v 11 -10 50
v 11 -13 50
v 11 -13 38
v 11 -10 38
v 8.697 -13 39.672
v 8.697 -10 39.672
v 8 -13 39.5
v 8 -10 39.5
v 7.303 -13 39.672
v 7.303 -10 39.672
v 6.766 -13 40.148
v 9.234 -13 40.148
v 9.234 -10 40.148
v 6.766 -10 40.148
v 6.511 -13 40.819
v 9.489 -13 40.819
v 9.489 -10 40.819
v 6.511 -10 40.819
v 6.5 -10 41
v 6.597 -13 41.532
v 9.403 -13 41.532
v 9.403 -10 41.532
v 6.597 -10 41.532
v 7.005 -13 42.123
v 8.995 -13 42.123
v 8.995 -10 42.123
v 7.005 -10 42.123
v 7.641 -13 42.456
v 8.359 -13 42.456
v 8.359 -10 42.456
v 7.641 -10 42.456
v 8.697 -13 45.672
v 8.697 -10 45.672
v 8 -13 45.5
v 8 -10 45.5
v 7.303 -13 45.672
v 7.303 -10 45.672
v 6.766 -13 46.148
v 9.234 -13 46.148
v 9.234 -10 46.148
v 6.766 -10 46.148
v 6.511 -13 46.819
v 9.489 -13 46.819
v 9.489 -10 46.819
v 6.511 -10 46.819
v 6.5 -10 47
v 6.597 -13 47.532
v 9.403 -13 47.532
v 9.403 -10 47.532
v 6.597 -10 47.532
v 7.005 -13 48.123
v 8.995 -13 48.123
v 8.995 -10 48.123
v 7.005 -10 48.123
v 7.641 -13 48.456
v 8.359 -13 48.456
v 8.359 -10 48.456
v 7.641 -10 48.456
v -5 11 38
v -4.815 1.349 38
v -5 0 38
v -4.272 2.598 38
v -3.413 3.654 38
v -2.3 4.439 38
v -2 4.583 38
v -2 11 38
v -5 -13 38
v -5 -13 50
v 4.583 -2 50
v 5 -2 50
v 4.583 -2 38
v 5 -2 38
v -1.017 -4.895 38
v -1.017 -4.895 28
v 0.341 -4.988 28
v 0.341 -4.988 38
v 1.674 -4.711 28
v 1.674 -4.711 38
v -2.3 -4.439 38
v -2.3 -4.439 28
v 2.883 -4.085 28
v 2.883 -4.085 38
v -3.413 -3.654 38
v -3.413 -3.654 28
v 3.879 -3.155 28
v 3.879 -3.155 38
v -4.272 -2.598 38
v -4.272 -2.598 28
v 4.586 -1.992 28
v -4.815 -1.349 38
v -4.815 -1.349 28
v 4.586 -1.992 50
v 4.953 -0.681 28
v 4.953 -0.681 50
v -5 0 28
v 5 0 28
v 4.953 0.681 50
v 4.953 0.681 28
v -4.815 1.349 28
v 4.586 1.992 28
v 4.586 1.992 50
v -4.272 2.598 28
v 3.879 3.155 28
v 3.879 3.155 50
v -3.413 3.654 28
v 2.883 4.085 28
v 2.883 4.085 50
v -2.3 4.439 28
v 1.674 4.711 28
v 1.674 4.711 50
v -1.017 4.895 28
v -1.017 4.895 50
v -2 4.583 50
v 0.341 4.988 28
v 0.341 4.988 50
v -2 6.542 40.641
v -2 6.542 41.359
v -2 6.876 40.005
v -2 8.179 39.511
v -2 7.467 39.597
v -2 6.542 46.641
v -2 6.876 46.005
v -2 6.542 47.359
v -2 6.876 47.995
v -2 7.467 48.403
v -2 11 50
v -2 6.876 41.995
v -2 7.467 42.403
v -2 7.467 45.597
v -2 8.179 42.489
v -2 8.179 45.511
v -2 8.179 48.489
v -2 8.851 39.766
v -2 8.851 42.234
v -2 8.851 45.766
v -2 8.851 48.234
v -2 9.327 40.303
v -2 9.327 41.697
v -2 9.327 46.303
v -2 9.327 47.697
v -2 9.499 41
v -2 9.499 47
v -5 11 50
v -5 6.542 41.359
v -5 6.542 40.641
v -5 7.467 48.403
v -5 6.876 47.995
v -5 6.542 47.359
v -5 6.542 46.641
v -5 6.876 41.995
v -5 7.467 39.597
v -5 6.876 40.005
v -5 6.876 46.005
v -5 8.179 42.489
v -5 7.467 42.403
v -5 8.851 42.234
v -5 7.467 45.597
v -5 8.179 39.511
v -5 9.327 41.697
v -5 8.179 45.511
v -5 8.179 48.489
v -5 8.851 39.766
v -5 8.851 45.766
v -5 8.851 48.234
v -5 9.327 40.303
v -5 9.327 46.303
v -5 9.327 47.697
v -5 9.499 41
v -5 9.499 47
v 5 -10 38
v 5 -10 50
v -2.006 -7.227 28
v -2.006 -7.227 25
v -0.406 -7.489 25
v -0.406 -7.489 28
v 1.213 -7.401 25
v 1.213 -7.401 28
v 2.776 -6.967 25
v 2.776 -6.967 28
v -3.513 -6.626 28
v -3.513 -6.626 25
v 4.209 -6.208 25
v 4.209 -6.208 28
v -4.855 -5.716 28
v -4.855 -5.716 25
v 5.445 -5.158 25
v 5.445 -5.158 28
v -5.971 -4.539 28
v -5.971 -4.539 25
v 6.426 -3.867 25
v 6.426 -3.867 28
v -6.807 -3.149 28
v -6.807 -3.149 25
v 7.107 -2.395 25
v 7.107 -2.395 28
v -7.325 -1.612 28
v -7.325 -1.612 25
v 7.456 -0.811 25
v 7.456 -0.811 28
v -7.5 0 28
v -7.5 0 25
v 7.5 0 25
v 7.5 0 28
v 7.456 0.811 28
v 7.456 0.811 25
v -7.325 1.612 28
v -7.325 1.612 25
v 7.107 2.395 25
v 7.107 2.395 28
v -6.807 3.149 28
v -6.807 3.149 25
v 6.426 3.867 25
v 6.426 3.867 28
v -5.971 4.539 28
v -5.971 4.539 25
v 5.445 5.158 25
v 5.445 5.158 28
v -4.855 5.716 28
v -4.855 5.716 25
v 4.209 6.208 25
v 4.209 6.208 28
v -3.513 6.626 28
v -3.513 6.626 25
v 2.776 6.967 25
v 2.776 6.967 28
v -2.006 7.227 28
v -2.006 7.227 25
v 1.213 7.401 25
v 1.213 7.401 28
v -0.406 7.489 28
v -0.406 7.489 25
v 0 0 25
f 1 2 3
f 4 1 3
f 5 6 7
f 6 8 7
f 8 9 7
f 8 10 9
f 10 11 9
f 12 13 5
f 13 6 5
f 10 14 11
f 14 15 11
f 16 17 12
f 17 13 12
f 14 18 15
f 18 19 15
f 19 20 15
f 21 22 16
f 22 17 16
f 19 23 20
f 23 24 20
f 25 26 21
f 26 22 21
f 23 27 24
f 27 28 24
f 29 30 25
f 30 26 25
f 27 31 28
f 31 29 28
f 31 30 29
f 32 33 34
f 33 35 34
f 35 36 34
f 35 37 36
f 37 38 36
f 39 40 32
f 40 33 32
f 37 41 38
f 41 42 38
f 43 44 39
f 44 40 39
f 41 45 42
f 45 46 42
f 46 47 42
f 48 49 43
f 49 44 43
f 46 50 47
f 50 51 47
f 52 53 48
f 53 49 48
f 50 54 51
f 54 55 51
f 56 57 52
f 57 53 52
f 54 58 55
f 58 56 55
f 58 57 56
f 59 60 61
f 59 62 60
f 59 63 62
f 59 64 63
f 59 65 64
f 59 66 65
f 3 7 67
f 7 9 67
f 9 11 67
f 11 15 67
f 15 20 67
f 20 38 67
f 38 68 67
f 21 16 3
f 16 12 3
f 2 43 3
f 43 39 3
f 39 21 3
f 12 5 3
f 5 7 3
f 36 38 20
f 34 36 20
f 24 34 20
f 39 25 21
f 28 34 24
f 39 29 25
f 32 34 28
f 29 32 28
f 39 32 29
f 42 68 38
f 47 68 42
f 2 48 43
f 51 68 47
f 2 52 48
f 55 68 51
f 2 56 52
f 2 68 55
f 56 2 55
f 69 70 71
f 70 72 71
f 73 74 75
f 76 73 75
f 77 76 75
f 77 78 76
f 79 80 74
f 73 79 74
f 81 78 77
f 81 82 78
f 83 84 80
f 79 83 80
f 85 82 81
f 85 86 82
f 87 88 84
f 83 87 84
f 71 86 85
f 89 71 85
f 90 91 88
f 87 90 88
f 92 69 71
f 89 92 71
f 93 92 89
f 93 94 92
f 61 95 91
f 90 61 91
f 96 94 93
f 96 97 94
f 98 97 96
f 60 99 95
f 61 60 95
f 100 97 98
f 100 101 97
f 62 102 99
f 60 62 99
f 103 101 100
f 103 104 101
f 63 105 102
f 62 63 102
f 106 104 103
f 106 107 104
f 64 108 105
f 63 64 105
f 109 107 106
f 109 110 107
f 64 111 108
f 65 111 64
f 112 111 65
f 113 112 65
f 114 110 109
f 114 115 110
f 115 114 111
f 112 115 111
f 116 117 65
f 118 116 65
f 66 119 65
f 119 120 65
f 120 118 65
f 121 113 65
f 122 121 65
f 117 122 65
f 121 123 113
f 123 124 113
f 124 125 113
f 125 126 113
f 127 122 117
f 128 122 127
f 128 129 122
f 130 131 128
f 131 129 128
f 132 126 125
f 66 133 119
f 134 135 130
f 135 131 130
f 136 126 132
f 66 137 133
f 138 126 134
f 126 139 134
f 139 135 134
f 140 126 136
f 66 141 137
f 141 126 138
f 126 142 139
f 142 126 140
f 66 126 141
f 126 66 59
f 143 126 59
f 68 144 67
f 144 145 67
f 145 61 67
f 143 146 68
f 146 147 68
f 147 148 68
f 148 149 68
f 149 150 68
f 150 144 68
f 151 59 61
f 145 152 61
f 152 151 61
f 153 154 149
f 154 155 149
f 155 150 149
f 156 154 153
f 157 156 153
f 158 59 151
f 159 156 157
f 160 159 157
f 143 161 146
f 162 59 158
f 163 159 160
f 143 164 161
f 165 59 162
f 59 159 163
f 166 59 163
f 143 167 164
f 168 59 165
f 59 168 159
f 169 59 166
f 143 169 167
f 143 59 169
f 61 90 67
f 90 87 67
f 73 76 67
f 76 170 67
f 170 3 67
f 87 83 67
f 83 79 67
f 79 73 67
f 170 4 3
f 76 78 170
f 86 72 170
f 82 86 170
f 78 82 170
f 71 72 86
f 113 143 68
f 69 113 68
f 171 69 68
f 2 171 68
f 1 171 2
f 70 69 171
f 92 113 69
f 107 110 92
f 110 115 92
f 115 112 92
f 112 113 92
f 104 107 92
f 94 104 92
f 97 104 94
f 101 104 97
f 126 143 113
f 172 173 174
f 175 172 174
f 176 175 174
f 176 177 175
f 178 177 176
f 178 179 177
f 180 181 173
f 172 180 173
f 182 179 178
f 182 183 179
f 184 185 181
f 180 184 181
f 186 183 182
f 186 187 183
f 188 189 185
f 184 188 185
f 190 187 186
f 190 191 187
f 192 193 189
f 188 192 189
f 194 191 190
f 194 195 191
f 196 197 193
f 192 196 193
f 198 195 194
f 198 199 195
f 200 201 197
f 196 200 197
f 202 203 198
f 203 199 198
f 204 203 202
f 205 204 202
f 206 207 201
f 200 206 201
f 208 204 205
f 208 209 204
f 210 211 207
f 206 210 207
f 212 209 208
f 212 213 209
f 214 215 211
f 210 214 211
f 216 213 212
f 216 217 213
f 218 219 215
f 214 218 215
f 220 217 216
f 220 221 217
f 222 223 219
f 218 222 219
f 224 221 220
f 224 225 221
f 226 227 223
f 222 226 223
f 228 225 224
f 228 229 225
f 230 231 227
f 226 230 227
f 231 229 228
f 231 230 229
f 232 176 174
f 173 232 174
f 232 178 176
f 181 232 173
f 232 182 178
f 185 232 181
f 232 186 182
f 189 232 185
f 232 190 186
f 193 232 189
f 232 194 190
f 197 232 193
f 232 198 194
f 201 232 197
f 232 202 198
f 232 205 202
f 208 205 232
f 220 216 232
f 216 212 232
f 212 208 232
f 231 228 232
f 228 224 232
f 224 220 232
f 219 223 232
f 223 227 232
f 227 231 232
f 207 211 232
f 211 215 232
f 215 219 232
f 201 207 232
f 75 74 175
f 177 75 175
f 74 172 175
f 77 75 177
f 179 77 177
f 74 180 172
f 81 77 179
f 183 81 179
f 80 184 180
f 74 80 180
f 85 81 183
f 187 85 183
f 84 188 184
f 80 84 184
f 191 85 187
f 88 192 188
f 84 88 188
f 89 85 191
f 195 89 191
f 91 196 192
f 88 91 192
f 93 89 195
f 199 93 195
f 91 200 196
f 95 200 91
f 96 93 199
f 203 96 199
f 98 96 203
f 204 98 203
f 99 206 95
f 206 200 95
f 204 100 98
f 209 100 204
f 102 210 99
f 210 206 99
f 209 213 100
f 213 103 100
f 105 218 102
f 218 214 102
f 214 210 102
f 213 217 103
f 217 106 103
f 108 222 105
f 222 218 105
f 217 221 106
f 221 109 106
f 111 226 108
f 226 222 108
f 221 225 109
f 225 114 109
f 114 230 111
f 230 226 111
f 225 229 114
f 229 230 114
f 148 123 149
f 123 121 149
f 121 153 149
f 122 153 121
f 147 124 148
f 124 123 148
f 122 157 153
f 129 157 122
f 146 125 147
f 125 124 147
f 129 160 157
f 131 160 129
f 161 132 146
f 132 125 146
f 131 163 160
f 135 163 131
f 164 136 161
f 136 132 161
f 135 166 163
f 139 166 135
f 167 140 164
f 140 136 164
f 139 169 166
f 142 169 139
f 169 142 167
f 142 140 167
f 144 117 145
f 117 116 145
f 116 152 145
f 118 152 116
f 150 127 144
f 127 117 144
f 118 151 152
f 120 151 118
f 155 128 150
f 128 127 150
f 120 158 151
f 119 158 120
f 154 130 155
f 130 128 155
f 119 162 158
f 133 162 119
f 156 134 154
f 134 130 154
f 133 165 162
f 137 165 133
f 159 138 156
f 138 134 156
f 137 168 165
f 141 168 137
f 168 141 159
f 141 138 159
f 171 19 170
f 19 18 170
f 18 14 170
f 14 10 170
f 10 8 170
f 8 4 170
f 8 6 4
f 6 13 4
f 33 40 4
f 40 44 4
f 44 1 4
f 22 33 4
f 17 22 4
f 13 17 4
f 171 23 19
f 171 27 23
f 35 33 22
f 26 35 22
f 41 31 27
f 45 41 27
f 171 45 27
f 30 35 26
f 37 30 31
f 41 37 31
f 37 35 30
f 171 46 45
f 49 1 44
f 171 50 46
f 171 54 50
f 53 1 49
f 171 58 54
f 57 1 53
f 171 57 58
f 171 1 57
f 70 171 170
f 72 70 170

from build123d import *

# Parameters (mm, degrees)
SKETCH_1_W          = 5
SKETCH_1_H          = 8
EXTRUDE_1_DEPTH     = 12
SKETCH_2_R          = 5
EXTRUDE_2_DEPTH     = 10
SKETCH_3_R          = 7.5
EXTRUDE_3_DEPTH     = 3
SKETCH_4_R          = 1.5
CUT_EXTRUDE_1_DEPTH = 3
SKETCH_5_R          = 1.5
CUT_EXTRUDE_2_DEPTH = 11
SKETCH_6_W          = 6
SKETCH_6_H          = 12
CUT_EXTRUDE_3_DEPTH = 8


with BuildPart() as part:
    # 草图1 → 凸台-拉伸1 (new body)
    with BuildSketch(Plane.XY):
        with BuildLine():
            Line((11, -2), (4.582575695, -2))
            ThreePointArc((4.582575695, -2), (3.535533906, 3.535533906), (-2, 4.582575695))
            Line((-2, 4.582575695), (-2, 11))
            Line((-2, 11), (-5, 11))
            Line((-5, 11), (-5, 0))
            Line((-5, 0), (-5, -5))
            Line((-5, -5), (0, -5))
            Line((0, -5), (11, -5))
            Line((11, -5), (11, -2))
        make_face()
        Polygon((-5, -13), (-5, -5), (0, -5), (11, -5), (11, -13), align=None)
        with Locations((-2.5, -9)):
            Rectangle(SKETCH_1_W, SKETCH_1_H)
    extrude(amount=EXTRUDE_1_DEPTH)

    # 草图2 → 凸台-拉伸2 (add)
    with BuildSketch(Plane.XY.offset(12)):
        with Locations(Location((0, 0, 0), (0, 0, 180))):
            Circle(SKETCH_2_R)
    extrude(amount=EXTRUDE_2_DEPTH)

    # 草图3 → 凸台-拉伸3 (add)
    with BuildSketch(Plane.XY.offset(22)):
        Circle(SKETCH_3_R)
    extrude(amount=EXTRUDE_3_DEPTH)

    # 草图4 → 切除-拉伸1 (cut)
    with BuildSketch(Plane(origin=(-2, 0, 0), x_dir=(0, 0, -1), z_dir=(1, 0, 0))):
        with Locations(Location((-9, 7.998538294, 0), (0, 0, 90))):
            Circle(SKETCH_4_R)
        with Locations(Location((-3, 7.998538294, 0), (0, 0, 90))):
            Circle(SKETCH_4_R)
    extrude(amount=-CUT_EXTRUDE_1_DEPTH, mode=Mode.SUBTRACT)

    # 草图5 → 切除-拉伸2 (cut)
    with BuildSketch(Plane(origin=(0, -2, 0), x_dir=(1, 0, 0), z_dir=(0, 1, 0))):
        with Locations(Location((8, -9, 0), (0, 0, 270))):
            Circle(SKETCH_5_R)
        with Locations(Location((8, -3, 0), (0, 0, 270))):
            Circle(SKETCH_5_R)
    extrude(amount=-CUT_EXTRUDE_2_DEPTH, mode=Mode.SUBTRACT)

    # 草图6 → 切除-拉伸3 (cut)
    with BuildSketch(Plane(origin=(0, -2, 0), x_dir=(1, 0, 0), z_dir=(0, 1, 0))):
        with Locations((8, -6)):
            Rectangle(SKETCH_6_W, SKETCH_6_H)
    extrude(amount=-CUT_EXTRUDE_3_DEPTH, mode=Mode.SUBTRACT)


with BuildPart() as body_2:
    # 镜向1: mirrored copy
    add(part.part.mirror(Plane.XY.offset(25)))


solid = body_2.part
